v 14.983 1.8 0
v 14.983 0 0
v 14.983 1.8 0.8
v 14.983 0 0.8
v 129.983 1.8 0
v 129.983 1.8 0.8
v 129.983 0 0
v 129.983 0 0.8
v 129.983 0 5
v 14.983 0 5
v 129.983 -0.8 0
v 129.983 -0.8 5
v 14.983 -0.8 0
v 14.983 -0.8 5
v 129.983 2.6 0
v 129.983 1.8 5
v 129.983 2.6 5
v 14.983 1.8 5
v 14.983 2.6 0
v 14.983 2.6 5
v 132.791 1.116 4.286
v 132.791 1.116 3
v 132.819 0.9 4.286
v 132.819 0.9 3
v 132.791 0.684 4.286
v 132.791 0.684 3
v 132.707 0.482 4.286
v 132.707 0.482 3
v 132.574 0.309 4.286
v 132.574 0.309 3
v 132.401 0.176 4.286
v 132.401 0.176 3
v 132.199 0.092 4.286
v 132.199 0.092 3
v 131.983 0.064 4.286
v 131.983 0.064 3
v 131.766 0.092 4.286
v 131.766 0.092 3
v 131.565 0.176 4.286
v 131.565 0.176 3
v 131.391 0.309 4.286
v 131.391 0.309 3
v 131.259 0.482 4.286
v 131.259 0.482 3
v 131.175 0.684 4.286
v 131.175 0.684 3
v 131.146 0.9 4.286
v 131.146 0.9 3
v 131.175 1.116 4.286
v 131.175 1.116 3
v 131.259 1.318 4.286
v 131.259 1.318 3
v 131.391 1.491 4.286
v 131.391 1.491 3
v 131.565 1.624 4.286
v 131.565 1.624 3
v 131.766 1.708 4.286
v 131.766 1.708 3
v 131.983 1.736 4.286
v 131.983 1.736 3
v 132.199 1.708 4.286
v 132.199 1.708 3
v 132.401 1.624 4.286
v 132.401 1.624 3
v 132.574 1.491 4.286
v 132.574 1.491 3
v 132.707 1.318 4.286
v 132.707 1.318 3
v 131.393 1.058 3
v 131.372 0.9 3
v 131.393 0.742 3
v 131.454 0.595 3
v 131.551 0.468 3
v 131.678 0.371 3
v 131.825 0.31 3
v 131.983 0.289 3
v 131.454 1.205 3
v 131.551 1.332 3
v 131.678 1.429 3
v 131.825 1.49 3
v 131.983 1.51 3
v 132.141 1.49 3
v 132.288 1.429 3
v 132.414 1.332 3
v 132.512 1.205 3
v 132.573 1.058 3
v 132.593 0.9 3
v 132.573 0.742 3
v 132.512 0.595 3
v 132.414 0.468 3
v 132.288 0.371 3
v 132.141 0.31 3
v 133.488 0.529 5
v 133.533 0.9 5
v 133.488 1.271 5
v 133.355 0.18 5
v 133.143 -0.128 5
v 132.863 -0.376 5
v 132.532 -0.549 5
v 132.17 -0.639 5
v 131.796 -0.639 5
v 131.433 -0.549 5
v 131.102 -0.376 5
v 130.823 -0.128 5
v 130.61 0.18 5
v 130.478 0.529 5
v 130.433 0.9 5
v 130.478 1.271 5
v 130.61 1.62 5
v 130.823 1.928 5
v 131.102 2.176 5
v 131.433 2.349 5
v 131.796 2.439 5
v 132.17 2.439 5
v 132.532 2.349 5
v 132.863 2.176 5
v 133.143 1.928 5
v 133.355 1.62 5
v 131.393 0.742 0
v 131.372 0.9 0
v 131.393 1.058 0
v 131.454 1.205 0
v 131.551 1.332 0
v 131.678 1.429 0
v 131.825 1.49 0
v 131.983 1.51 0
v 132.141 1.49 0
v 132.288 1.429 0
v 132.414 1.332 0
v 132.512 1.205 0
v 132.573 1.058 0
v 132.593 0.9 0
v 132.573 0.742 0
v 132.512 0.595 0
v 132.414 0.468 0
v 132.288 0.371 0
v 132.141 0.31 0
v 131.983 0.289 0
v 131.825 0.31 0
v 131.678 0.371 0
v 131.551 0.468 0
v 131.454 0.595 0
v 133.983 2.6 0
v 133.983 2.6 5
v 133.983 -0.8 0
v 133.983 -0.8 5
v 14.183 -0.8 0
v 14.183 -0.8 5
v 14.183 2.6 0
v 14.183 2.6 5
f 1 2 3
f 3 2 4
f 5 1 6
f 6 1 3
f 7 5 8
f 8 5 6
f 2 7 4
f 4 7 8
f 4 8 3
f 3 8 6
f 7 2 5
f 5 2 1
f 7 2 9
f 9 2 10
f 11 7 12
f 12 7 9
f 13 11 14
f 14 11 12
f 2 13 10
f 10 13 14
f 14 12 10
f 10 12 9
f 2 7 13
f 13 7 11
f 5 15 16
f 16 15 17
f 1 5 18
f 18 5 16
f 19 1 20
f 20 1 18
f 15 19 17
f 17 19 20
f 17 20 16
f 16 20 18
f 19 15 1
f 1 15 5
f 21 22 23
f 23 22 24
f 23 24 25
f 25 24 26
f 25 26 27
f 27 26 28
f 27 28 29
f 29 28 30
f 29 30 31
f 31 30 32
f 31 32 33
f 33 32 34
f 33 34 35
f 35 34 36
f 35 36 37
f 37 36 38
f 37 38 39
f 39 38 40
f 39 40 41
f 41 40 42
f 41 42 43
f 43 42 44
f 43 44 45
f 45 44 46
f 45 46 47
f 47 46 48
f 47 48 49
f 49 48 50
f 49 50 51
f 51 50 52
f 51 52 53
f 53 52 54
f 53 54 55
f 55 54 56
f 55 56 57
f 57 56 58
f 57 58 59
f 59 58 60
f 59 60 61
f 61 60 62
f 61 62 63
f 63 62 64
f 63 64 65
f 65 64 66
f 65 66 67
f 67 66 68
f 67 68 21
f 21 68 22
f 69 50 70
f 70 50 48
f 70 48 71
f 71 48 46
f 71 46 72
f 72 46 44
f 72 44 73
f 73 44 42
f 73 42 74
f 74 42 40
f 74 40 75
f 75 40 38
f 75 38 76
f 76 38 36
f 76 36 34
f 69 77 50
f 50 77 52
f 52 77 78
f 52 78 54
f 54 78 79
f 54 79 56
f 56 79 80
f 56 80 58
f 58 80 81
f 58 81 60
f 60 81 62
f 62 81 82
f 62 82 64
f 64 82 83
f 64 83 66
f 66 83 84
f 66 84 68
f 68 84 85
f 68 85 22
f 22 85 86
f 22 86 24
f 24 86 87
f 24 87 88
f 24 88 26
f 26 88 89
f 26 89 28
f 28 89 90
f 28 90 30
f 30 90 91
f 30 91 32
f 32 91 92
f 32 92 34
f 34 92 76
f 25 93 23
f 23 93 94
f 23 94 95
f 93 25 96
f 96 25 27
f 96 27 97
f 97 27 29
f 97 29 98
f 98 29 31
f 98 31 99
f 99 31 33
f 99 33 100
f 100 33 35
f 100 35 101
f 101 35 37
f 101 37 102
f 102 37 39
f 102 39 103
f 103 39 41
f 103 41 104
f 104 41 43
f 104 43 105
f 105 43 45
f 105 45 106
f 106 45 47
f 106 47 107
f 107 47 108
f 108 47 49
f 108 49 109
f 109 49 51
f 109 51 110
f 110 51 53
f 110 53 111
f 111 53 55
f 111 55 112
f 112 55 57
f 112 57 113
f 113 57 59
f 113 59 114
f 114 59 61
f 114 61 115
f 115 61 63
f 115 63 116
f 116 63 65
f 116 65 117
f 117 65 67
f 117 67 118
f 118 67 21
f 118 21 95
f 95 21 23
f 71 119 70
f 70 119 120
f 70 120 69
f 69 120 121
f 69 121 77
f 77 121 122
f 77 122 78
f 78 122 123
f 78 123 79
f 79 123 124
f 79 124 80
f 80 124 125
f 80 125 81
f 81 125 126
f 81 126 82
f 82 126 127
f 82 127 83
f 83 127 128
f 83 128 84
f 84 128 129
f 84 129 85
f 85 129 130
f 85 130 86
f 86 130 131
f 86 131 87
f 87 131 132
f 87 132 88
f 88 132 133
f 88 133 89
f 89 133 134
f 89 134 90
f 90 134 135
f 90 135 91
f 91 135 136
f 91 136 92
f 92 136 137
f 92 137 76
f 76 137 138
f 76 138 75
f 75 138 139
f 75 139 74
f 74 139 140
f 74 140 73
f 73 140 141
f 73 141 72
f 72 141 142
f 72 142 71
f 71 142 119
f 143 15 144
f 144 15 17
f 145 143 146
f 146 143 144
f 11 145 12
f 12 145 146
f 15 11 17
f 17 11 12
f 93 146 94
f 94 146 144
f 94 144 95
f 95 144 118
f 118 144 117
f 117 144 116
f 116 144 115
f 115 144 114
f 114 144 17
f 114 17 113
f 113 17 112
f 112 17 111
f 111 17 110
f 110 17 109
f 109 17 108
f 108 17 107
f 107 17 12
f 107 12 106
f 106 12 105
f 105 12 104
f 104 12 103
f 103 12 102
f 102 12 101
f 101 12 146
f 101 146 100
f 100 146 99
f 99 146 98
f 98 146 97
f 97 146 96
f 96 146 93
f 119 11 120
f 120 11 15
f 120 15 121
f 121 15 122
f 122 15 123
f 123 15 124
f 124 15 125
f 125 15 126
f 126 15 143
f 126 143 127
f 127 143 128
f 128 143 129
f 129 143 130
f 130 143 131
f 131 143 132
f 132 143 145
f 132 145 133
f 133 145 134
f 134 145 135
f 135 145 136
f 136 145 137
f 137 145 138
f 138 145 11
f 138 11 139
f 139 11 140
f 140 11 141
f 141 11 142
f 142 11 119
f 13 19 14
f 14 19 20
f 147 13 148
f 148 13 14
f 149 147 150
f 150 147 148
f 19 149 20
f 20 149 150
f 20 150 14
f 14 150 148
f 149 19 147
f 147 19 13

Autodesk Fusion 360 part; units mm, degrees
sketch "Esquisse1" plane through (0, 0, 0) normal (0, 0, 1) x (1, 0, 0) in component "edge"
  line L0 (14.9828, 0) -> (129.9828, 0)
  line L1 (129.9828, 0) -> (129.9828, -0.8)
  line L2 (129.9828, -0.8) -> (14.9828, -0.8)
  line L3 (14.9828, -0.8) -> (14.9828, 0)
  line L4 (14.9828, 0) -> (129.9828, 0)
  line L5 (129.9828, 0) -> (129.9828, 1.8)
  line L6 (129.9828, 1.8) -> (14.9828, 1.8)
  line L7 (14.9828, 1.8) -> (14.9828, 0)
  line L8 (14.9828, 1.8) -> (129.9828, 1.8)
  line L9 (129.9828, 1.8) -> (129.9828, 2.6)
  line L10 (129.9828, 2.6) -> (14.9828, 2.6)
  line L11 (14.9828, 2.6) -> (14.9828, 1.8)
  line L12 (129.9828, -0.8) -> (133.9828, -0.8)
  line L13 (133.9828, -0.8) -> (133.9828, 2.6)
  line L14 (133.9828, 2.6) -> (129.9828, 2.6)
  line L15 (129.9828, 2.6) -> (129.9828, -0.8)
  line L16 (14.9828, -0.8) -> (14.1828, -0.8)
  line L17 (14.1828, -0.8) -> (14.1828, 2.6)
  line L18 (14.1828, 2.6) -> (14.9828, 2.6)
  line L19 (14.9828, 2.6) -> (14.9828, -0.8)
  line L20 (129.9828, -0.8) -> (133.9828, 2.6) construction
  line L21 (133.9828, -0.8) -> (129.9828, 2.6) construction
  circle A0 centre (131.9828, 0.9) radius 0.7
  dimension "EdgePhotoLen" = 115
  dimension "d2" = 0.8
  dimension "d3" = 1.8
  dimension "d4" = 115
  dimension "d5" = 0.8
  dimension "d10" = 4
  dimension "d11" = 0.8
  dimension "d14" = 1.4
extrude "Extrusion1" add sketch "Esquisse1" along normal blind 0.8 contours L0 L4 L5 L6 L7 L8 L15 L19 makes body 1 in component "edge"
extrude "Extrusion2" add sketch "Esquisse1" along normal blind 5 separate body contours L0 L1 L2 L3 L4 L15 L19 | L6 L8 L9 L10 L11 L15 L19 makes body 2 at (91.6495, 2.6, 1.6667) makes body 3 at (53.3161, 0, 1.6667) in component "edge"
extrude "Extrusion3" add sketch "Esquisse1" along normal blind 5 separate body contours L3 L7 L11 L16 L17 L18 L19 | L1 L5 L9 L12 L13 L14 L15 | A0 makes body 4 at (14.9828, 0.3333, 1.6667) makes body 5 at (132.6495, 2.6, 1.6667) in component "edge"
sketch "Esquisse3" plane through (0, 0, 5) normal (0, 0, 1) x (-1, 0, 0)
  line L0 (-129.9828, -2.6) -> (-129.9828, 0.8)
  line L1 (-129.9828, 0.8) -> (-133.9828, 0.8)
  line L2 (-133.9828, 0.8) -> (-133.9828, -2.6)
  line L3 (-133.9828, -2.6) -> (-129.9828, -2.6)
  line L4 (-129.9828, -2.6) -> (-133.9828, 0.8) construction
  line L5 (-129.9828, 0.8) -> (-133.9828, -2.6) construction
  point P0 (-131.9828, -0.9)
hole "Perçage2" at (131.9828, 0.9, 5) direction (0, 0, -1) diameter 1.221 depth 8 tip angle 180 countersink diameter 3.1 countersink angle 90 bodies 5 in component "edge"
sketch "Esquisse4" plane through (0, 0, 5) normal (0, 0, 1) x (-1, 0, 0)
  circle A0 centre (-131.9828, -0.9) radius 1.55
  line L0 (-129.9828, -2.6) -> (-129.9828, 0.8)
  line L1 (-129.9828, 0.8) -> (-133.9828, 0.8)
  line L2 (-133.9828, 0.8) -> (-133.9828, -2.6)
  line L3 (-133.9828, -2.6) -> (-129.9828, -2.6)
  circle A1 centre (-131.9828, -0.9) radius 0.8363
extrude "Extrusion6" cut sketch "Esquisse4" against normal blind 2 contours A1 bodies 5 in component "edge"
component "edge" placed x (1, 0, 0) y (0, 1, 0) z (0, 0, 1) at (0, 0, 0)
equation "d4 = EdgePhotoLen"
